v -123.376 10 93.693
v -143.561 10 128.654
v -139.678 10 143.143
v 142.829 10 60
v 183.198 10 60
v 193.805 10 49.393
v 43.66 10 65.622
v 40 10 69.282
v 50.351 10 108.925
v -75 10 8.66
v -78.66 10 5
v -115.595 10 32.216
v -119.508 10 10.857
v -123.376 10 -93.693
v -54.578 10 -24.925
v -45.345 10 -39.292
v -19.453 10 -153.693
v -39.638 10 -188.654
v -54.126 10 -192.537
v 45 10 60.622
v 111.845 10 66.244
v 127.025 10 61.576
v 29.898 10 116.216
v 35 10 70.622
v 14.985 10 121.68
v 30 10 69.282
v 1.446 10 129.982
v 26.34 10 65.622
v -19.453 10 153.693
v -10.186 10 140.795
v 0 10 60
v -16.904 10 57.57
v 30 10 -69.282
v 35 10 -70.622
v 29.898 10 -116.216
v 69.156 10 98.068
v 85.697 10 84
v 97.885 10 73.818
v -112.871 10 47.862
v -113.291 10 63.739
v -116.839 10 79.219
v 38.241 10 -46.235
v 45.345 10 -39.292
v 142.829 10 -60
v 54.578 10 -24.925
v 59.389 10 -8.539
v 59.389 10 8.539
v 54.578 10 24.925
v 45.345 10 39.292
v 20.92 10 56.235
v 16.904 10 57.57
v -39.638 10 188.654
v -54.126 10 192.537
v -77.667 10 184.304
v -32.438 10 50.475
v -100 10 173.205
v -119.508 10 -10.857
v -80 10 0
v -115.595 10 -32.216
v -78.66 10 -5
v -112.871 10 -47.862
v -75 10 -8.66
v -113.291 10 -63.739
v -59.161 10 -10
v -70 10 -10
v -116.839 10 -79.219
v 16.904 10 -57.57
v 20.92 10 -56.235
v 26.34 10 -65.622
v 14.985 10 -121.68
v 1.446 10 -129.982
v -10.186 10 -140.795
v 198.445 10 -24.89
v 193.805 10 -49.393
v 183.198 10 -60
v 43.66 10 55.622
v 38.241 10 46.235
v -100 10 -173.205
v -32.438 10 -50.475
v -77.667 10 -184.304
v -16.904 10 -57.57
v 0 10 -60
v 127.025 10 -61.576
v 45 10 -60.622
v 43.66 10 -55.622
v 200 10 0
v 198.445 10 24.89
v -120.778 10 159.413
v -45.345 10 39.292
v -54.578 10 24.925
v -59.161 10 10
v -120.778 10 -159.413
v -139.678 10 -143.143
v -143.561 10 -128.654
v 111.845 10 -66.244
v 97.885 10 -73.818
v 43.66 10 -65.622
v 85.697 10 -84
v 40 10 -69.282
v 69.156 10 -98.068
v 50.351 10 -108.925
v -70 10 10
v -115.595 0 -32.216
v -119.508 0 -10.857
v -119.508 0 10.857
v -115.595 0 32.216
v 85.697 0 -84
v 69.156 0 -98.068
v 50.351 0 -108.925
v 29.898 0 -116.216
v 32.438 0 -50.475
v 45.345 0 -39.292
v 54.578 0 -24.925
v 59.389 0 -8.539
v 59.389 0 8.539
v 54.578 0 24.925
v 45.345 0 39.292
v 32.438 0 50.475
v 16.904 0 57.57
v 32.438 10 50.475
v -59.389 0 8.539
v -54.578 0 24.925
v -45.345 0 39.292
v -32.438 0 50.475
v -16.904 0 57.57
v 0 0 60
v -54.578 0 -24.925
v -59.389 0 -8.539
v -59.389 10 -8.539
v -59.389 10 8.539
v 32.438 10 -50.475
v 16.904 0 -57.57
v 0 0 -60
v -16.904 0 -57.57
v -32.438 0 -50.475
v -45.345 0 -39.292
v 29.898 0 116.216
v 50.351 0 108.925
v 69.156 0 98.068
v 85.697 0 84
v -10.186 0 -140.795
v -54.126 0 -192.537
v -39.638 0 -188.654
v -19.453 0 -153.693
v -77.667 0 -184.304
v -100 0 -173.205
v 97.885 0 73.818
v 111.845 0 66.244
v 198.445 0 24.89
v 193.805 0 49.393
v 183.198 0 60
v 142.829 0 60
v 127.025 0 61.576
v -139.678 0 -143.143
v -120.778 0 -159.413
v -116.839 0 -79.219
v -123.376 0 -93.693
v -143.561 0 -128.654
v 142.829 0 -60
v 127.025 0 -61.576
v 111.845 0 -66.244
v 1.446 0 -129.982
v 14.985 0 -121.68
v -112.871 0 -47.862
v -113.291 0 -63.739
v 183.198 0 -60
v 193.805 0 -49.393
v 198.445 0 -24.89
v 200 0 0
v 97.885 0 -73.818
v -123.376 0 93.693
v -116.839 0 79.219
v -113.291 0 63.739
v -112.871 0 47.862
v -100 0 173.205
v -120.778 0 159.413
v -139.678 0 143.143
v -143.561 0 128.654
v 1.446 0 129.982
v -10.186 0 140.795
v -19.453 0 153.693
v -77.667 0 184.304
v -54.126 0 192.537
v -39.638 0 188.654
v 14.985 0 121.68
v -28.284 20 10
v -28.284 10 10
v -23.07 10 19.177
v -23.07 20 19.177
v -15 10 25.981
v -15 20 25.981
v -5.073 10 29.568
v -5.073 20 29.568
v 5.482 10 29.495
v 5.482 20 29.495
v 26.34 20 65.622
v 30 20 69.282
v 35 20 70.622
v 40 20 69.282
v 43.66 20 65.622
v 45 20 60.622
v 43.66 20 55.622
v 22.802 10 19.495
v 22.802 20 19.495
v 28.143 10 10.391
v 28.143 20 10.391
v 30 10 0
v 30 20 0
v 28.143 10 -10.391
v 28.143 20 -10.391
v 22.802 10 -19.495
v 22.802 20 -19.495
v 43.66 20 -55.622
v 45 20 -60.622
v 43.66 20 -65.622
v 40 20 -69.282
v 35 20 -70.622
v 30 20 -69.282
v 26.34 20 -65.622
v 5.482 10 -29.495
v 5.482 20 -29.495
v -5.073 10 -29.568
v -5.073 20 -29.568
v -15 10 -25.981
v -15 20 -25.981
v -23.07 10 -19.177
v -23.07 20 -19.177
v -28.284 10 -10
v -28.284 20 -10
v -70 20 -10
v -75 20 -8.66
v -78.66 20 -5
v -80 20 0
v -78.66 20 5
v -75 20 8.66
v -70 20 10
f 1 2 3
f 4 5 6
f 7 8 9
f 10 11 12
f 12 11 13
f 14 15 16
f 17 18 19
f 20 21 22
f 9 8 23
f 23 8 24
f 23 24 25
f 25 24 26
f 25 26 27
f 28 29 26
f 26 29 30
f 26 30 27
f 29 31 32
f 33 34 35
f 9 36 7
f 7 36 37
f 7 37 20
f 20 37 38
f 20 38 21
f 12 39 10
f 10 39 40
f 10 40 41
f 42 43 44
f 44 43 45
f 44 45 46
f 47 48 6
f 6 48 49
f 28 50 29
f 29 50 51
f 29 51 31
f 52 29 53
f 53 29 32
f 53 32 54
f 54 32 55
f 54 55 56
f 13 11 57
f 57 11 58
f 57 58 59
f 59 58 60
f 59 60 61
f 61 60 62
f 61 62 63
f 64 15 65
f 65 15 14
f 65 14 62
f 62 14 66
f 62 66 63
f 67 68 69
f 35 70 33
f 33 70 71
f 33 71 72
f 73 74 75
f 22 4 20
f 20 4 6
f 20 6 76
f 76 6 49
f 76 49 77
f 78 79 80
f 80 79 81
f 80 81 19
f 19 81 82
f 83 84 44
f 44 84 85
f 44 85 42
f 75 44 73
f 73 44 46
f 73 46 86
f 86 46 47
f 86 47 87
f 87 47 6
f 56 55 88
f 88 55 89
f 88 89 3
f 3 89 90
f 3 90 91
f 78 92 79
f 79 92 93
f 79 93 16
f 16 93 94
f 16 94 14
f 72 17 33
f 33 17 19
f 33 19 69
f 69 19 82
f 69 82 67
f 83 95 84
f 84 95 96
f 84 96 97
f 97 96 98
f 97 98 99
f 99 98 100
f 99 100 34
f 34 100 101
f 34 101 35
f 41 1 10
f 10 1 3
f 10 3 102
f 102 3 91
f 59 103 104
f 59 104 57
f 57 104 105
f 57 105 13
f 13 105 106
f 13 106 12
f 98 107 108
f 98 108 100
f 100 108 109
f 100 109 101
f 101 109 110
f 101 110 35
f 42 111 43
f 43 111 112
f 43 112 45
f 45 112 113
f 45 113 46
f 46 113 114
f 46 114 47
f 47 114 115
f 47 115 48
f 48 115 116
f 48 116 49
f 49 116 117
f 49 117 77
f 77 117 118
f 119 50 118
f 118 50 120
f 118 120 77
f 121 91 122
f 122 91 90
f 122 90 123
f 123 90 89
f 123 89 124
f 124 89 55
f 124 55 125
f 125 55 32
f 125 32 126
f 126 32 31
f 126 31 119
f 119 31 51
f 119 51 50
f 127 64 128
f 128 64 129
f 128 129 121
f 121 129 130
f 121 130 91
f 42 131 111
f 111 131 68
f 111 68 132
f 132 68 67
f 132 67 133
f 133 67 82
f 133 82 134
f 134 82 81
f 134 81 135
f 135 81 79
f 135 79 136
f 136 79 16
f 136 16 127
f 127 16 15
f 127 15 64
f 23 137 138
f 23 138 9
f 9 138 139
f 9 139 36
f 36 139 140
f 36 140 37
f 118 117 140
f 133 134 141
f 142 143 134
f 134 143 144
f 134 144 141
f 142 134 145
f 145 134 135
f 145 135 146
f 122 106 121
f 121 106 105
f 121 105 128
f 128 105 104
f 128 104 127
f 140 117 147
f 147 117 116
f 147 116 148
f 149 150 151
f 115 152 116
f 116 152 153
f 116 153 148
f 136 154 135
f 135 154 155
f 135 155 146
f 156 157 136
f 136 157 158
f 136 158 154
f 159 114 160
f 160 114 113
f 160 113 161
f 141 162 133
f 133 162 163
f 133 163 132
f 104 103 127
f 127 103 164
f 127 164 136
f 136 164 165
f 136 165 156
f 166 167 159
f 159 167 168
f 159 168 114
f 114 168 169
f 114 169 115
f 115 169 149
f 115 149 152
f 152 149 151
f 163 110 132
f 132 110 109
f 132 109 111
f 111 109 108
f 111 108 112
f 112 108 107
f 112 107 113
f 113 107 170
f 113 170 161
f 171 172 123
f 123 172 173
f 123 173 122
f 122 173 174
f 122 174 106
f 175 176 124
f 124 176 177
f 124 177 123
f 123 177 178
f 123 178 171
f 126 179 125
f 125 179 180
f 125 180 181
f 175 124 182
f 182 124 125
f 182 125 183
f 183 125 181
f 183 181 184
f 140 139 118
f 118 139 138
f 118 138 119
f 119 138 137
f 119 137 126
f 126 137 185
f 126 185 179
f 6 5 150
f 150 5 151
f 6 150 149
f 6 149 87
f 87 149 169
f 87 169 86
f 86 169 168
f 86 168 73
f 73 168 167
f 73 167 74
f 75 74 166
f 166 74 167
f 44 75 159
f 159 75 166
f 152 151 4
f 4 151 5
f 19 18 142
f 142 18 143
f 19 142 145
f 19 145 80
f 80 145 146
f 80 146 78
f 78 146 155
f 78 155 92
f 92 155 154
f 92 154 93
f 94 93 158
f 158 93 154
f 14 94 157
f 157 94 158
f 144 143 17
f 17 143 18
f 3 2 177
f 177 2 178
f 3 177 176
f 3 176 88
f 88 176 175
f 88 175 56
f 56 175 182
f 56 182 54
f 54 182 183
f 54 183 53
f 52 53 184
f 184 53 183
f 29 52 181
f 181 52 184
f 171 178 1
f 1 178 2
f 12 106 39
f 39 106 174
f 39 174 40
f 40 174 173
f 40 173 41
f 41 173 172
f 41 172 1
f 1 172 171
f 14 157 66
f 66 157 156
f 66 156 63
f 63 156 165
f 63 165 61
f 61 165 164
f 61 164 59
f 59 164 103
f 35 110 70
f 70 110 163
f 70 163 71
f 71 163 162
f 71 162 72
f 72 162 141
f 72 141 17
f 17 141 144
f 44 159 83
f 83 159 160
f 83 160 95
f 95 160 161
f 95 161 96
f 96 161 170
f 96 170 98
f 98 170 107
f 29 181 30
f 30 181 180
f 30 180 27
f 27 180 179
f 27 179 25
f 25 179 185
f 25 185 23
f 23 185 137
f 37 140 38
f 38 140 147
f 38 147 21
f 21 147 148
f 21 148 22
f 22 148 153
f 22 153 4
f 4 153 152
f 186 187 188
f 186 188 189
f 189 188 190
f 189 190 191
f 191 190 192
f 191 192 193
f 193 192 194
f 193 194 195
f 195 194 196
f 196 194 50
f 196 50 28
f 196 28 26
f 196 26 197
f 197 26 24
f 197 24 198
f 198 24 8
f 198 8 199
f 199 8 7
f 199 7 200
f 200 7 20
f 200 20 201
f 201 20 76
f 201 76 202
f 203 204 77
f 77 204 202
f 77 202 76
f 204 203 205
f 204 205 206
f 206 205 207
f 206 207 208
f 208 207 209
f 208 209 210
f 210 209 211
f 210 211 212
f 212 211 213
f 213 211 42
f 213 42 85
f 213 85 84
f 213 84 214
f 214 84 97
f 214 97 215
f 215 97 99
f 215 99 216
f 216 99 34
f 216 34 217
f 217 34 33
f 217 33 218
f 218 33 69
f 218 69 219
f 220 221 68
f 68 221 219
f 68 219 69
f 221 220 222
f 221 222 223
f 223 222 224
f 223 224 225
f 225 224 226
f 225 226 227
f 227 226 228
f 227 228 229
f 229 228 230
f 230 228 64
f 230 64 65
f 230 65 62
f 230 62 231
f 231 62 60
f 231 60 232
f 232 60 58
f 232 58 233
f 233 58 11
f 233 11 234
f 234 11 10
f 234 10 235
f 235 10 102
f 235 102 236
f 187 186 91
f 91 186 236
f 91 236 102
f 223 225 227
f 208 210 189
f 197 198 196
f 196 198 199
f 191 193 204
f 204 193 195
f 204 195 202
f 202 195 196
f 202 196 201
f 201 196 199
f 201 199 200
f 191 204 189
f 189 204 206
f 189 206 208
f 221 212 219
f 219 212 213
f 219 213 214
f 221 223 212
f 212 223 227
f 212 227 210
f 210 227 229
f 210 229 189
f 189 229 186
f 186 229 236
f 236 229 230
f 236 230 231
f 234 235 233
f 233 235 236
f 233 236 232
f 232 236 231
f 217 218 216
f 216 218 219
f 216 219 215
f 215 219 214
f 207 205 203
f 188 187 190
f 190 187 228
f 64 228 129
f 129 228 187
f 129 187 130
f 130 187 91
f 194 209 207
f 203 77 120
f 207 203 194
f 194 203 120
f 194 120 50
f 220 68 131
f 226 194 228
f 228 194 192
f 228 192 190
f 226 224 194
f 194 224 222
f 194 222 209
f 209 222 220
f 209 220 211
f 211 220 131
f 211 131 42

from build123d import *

# Parameters (mm, degrees)
SKETCH2_R           = 60
BOSS_EXTRUDE1_DEPTH = 10
BOSS_EXTRUDE2_DEPTH = 10
CIRPATTERN1_COUNT   = 3
FILLET1_R           = 80
BOSS_EXTRUDE3_DEPTH = 10


with BuildPart() as part:
    # Sketch2 → Boss-Extrude1 (new body)
    with BuildSketch(Plane(origin=(0, 0, 0), x_dir=(1, 0, 0), z_dir=(0, 1, 0))):
        with BuildLine():
            ThreePointArc((120, 0), (115.911099155, 31.058285412), (103.923048454, 60))
            ThreePointArc((103.923048454, 60), (-120, 0), (103.923048454, -60))
            ThreePointArc((103.923048454, -60), (115.911099155, -31.058285412), (120, 0))
        make_face()
        Circle(SKETCH2_R, mode=Mode.SUBTRACT)
    extrude(amount=BOSS_EXTRUDE1_DEPTH)

    # Sketch2<3> → Boss-Extrude2 (add)
    with BuildSketch(Plane(origin=(0, 0, 0), x_dir=(1, 0, 0), z_dir=(0, 1, 0))):
        with BuildLine():
            Line((183.198176877, 60), (103.923048454, 60))
            ThreePointArc((103.923048454, 60), (115.911099155, 31.058285412), (120, 0))
            ThreePointArc((120, 0), (115.911099155, -31.058285412), (103.923048454, -60))
            Line((103.923048454, -60), (183.198176877, -60))
            Line((183.198176877, -60), (193.804778595, -49.393398282))
            ThreePointArc((193.804778595, -49.393398282), (200, 0), (193.804778595, 49.393398282))
            Line((193.804778595, 49.393398282), (183.198176877, 60))
        make_face()
    boss_extrude2 = extrude(amount=BOSS_EXTRUDE2_DEPTH)

    # CirPattern1: Boss-Extrude2 ×3 about axis
    cirpattern1_axis = Axis((0, 10, 0), (0, -1, 0))
    for i in range(1, CIRPATTERN1_COUNT):
        add(boss_extrude2.rotate(cirpattern1_axis, i * 360 / CIRPATTERN1_COUNT))

    # Fillet1
    fillet1_edges = [part.edges().sort_by_distance(p)[0] for p in [
        (-103.923048454, 5, 60),
        (-103.923048454, 5, -60),
        (0, 5, -120),
        (103.923048454, 5, -60),
        (0, 5, 120),
        (103.923048454, 5, 60),
    ]]
    fillet(fillet1_edges, radius=FILLET1_R)

    # Sketch3 → Boss-Extrude3 (add)
    with BuildSketch(Plane(origin=(0, 10, 0), x_dir=(1, 0, 0), z_dir=(0, 1, 0))):
        with BuildLine():
            Line((22.802389662, 19.494897428), (43.660254038, 55.621778265))
            ThreePointArc((43.660254038, 55.621778265), (40, 69.282032303), (26.339745962, 65.621778265))
            Line((26.339745962, 65.621778265), (5.481881586, 29.494897428))
            ThreePointArc((5.481881586, 29.494897428), (-15, 25.980762114), (-28.284271247, 10))
            Line((-28.284271247, 10), (-70, 10))
            ThreePointArc((-70, 10), (-80, 0), (-70, -10))
            Line((-70, -10), (-28.284271247, -10))
            ThreePointArc((-28.284271247, -10), (-15, -25.980762114), (5.481881586, -29.494897428))
            Line((5.481881586, -29.494897428), (26.339745962, -65.621778265))
            ThreePointArc((26.339745962, -65.621778265), (40, -69.282032303), (43.660254038, -55.621778265))
            Line((43.660254038, -55.621778265), (22.802389662, -19.494897428))
            ThreePointArc((22.802389662, -19.494897428), (30, 0), (22.802389662, 19.494897428))
        make_face()
    extrude(amount=BOSS_EXTRUDE3_DEPTH)


solid = part.part
